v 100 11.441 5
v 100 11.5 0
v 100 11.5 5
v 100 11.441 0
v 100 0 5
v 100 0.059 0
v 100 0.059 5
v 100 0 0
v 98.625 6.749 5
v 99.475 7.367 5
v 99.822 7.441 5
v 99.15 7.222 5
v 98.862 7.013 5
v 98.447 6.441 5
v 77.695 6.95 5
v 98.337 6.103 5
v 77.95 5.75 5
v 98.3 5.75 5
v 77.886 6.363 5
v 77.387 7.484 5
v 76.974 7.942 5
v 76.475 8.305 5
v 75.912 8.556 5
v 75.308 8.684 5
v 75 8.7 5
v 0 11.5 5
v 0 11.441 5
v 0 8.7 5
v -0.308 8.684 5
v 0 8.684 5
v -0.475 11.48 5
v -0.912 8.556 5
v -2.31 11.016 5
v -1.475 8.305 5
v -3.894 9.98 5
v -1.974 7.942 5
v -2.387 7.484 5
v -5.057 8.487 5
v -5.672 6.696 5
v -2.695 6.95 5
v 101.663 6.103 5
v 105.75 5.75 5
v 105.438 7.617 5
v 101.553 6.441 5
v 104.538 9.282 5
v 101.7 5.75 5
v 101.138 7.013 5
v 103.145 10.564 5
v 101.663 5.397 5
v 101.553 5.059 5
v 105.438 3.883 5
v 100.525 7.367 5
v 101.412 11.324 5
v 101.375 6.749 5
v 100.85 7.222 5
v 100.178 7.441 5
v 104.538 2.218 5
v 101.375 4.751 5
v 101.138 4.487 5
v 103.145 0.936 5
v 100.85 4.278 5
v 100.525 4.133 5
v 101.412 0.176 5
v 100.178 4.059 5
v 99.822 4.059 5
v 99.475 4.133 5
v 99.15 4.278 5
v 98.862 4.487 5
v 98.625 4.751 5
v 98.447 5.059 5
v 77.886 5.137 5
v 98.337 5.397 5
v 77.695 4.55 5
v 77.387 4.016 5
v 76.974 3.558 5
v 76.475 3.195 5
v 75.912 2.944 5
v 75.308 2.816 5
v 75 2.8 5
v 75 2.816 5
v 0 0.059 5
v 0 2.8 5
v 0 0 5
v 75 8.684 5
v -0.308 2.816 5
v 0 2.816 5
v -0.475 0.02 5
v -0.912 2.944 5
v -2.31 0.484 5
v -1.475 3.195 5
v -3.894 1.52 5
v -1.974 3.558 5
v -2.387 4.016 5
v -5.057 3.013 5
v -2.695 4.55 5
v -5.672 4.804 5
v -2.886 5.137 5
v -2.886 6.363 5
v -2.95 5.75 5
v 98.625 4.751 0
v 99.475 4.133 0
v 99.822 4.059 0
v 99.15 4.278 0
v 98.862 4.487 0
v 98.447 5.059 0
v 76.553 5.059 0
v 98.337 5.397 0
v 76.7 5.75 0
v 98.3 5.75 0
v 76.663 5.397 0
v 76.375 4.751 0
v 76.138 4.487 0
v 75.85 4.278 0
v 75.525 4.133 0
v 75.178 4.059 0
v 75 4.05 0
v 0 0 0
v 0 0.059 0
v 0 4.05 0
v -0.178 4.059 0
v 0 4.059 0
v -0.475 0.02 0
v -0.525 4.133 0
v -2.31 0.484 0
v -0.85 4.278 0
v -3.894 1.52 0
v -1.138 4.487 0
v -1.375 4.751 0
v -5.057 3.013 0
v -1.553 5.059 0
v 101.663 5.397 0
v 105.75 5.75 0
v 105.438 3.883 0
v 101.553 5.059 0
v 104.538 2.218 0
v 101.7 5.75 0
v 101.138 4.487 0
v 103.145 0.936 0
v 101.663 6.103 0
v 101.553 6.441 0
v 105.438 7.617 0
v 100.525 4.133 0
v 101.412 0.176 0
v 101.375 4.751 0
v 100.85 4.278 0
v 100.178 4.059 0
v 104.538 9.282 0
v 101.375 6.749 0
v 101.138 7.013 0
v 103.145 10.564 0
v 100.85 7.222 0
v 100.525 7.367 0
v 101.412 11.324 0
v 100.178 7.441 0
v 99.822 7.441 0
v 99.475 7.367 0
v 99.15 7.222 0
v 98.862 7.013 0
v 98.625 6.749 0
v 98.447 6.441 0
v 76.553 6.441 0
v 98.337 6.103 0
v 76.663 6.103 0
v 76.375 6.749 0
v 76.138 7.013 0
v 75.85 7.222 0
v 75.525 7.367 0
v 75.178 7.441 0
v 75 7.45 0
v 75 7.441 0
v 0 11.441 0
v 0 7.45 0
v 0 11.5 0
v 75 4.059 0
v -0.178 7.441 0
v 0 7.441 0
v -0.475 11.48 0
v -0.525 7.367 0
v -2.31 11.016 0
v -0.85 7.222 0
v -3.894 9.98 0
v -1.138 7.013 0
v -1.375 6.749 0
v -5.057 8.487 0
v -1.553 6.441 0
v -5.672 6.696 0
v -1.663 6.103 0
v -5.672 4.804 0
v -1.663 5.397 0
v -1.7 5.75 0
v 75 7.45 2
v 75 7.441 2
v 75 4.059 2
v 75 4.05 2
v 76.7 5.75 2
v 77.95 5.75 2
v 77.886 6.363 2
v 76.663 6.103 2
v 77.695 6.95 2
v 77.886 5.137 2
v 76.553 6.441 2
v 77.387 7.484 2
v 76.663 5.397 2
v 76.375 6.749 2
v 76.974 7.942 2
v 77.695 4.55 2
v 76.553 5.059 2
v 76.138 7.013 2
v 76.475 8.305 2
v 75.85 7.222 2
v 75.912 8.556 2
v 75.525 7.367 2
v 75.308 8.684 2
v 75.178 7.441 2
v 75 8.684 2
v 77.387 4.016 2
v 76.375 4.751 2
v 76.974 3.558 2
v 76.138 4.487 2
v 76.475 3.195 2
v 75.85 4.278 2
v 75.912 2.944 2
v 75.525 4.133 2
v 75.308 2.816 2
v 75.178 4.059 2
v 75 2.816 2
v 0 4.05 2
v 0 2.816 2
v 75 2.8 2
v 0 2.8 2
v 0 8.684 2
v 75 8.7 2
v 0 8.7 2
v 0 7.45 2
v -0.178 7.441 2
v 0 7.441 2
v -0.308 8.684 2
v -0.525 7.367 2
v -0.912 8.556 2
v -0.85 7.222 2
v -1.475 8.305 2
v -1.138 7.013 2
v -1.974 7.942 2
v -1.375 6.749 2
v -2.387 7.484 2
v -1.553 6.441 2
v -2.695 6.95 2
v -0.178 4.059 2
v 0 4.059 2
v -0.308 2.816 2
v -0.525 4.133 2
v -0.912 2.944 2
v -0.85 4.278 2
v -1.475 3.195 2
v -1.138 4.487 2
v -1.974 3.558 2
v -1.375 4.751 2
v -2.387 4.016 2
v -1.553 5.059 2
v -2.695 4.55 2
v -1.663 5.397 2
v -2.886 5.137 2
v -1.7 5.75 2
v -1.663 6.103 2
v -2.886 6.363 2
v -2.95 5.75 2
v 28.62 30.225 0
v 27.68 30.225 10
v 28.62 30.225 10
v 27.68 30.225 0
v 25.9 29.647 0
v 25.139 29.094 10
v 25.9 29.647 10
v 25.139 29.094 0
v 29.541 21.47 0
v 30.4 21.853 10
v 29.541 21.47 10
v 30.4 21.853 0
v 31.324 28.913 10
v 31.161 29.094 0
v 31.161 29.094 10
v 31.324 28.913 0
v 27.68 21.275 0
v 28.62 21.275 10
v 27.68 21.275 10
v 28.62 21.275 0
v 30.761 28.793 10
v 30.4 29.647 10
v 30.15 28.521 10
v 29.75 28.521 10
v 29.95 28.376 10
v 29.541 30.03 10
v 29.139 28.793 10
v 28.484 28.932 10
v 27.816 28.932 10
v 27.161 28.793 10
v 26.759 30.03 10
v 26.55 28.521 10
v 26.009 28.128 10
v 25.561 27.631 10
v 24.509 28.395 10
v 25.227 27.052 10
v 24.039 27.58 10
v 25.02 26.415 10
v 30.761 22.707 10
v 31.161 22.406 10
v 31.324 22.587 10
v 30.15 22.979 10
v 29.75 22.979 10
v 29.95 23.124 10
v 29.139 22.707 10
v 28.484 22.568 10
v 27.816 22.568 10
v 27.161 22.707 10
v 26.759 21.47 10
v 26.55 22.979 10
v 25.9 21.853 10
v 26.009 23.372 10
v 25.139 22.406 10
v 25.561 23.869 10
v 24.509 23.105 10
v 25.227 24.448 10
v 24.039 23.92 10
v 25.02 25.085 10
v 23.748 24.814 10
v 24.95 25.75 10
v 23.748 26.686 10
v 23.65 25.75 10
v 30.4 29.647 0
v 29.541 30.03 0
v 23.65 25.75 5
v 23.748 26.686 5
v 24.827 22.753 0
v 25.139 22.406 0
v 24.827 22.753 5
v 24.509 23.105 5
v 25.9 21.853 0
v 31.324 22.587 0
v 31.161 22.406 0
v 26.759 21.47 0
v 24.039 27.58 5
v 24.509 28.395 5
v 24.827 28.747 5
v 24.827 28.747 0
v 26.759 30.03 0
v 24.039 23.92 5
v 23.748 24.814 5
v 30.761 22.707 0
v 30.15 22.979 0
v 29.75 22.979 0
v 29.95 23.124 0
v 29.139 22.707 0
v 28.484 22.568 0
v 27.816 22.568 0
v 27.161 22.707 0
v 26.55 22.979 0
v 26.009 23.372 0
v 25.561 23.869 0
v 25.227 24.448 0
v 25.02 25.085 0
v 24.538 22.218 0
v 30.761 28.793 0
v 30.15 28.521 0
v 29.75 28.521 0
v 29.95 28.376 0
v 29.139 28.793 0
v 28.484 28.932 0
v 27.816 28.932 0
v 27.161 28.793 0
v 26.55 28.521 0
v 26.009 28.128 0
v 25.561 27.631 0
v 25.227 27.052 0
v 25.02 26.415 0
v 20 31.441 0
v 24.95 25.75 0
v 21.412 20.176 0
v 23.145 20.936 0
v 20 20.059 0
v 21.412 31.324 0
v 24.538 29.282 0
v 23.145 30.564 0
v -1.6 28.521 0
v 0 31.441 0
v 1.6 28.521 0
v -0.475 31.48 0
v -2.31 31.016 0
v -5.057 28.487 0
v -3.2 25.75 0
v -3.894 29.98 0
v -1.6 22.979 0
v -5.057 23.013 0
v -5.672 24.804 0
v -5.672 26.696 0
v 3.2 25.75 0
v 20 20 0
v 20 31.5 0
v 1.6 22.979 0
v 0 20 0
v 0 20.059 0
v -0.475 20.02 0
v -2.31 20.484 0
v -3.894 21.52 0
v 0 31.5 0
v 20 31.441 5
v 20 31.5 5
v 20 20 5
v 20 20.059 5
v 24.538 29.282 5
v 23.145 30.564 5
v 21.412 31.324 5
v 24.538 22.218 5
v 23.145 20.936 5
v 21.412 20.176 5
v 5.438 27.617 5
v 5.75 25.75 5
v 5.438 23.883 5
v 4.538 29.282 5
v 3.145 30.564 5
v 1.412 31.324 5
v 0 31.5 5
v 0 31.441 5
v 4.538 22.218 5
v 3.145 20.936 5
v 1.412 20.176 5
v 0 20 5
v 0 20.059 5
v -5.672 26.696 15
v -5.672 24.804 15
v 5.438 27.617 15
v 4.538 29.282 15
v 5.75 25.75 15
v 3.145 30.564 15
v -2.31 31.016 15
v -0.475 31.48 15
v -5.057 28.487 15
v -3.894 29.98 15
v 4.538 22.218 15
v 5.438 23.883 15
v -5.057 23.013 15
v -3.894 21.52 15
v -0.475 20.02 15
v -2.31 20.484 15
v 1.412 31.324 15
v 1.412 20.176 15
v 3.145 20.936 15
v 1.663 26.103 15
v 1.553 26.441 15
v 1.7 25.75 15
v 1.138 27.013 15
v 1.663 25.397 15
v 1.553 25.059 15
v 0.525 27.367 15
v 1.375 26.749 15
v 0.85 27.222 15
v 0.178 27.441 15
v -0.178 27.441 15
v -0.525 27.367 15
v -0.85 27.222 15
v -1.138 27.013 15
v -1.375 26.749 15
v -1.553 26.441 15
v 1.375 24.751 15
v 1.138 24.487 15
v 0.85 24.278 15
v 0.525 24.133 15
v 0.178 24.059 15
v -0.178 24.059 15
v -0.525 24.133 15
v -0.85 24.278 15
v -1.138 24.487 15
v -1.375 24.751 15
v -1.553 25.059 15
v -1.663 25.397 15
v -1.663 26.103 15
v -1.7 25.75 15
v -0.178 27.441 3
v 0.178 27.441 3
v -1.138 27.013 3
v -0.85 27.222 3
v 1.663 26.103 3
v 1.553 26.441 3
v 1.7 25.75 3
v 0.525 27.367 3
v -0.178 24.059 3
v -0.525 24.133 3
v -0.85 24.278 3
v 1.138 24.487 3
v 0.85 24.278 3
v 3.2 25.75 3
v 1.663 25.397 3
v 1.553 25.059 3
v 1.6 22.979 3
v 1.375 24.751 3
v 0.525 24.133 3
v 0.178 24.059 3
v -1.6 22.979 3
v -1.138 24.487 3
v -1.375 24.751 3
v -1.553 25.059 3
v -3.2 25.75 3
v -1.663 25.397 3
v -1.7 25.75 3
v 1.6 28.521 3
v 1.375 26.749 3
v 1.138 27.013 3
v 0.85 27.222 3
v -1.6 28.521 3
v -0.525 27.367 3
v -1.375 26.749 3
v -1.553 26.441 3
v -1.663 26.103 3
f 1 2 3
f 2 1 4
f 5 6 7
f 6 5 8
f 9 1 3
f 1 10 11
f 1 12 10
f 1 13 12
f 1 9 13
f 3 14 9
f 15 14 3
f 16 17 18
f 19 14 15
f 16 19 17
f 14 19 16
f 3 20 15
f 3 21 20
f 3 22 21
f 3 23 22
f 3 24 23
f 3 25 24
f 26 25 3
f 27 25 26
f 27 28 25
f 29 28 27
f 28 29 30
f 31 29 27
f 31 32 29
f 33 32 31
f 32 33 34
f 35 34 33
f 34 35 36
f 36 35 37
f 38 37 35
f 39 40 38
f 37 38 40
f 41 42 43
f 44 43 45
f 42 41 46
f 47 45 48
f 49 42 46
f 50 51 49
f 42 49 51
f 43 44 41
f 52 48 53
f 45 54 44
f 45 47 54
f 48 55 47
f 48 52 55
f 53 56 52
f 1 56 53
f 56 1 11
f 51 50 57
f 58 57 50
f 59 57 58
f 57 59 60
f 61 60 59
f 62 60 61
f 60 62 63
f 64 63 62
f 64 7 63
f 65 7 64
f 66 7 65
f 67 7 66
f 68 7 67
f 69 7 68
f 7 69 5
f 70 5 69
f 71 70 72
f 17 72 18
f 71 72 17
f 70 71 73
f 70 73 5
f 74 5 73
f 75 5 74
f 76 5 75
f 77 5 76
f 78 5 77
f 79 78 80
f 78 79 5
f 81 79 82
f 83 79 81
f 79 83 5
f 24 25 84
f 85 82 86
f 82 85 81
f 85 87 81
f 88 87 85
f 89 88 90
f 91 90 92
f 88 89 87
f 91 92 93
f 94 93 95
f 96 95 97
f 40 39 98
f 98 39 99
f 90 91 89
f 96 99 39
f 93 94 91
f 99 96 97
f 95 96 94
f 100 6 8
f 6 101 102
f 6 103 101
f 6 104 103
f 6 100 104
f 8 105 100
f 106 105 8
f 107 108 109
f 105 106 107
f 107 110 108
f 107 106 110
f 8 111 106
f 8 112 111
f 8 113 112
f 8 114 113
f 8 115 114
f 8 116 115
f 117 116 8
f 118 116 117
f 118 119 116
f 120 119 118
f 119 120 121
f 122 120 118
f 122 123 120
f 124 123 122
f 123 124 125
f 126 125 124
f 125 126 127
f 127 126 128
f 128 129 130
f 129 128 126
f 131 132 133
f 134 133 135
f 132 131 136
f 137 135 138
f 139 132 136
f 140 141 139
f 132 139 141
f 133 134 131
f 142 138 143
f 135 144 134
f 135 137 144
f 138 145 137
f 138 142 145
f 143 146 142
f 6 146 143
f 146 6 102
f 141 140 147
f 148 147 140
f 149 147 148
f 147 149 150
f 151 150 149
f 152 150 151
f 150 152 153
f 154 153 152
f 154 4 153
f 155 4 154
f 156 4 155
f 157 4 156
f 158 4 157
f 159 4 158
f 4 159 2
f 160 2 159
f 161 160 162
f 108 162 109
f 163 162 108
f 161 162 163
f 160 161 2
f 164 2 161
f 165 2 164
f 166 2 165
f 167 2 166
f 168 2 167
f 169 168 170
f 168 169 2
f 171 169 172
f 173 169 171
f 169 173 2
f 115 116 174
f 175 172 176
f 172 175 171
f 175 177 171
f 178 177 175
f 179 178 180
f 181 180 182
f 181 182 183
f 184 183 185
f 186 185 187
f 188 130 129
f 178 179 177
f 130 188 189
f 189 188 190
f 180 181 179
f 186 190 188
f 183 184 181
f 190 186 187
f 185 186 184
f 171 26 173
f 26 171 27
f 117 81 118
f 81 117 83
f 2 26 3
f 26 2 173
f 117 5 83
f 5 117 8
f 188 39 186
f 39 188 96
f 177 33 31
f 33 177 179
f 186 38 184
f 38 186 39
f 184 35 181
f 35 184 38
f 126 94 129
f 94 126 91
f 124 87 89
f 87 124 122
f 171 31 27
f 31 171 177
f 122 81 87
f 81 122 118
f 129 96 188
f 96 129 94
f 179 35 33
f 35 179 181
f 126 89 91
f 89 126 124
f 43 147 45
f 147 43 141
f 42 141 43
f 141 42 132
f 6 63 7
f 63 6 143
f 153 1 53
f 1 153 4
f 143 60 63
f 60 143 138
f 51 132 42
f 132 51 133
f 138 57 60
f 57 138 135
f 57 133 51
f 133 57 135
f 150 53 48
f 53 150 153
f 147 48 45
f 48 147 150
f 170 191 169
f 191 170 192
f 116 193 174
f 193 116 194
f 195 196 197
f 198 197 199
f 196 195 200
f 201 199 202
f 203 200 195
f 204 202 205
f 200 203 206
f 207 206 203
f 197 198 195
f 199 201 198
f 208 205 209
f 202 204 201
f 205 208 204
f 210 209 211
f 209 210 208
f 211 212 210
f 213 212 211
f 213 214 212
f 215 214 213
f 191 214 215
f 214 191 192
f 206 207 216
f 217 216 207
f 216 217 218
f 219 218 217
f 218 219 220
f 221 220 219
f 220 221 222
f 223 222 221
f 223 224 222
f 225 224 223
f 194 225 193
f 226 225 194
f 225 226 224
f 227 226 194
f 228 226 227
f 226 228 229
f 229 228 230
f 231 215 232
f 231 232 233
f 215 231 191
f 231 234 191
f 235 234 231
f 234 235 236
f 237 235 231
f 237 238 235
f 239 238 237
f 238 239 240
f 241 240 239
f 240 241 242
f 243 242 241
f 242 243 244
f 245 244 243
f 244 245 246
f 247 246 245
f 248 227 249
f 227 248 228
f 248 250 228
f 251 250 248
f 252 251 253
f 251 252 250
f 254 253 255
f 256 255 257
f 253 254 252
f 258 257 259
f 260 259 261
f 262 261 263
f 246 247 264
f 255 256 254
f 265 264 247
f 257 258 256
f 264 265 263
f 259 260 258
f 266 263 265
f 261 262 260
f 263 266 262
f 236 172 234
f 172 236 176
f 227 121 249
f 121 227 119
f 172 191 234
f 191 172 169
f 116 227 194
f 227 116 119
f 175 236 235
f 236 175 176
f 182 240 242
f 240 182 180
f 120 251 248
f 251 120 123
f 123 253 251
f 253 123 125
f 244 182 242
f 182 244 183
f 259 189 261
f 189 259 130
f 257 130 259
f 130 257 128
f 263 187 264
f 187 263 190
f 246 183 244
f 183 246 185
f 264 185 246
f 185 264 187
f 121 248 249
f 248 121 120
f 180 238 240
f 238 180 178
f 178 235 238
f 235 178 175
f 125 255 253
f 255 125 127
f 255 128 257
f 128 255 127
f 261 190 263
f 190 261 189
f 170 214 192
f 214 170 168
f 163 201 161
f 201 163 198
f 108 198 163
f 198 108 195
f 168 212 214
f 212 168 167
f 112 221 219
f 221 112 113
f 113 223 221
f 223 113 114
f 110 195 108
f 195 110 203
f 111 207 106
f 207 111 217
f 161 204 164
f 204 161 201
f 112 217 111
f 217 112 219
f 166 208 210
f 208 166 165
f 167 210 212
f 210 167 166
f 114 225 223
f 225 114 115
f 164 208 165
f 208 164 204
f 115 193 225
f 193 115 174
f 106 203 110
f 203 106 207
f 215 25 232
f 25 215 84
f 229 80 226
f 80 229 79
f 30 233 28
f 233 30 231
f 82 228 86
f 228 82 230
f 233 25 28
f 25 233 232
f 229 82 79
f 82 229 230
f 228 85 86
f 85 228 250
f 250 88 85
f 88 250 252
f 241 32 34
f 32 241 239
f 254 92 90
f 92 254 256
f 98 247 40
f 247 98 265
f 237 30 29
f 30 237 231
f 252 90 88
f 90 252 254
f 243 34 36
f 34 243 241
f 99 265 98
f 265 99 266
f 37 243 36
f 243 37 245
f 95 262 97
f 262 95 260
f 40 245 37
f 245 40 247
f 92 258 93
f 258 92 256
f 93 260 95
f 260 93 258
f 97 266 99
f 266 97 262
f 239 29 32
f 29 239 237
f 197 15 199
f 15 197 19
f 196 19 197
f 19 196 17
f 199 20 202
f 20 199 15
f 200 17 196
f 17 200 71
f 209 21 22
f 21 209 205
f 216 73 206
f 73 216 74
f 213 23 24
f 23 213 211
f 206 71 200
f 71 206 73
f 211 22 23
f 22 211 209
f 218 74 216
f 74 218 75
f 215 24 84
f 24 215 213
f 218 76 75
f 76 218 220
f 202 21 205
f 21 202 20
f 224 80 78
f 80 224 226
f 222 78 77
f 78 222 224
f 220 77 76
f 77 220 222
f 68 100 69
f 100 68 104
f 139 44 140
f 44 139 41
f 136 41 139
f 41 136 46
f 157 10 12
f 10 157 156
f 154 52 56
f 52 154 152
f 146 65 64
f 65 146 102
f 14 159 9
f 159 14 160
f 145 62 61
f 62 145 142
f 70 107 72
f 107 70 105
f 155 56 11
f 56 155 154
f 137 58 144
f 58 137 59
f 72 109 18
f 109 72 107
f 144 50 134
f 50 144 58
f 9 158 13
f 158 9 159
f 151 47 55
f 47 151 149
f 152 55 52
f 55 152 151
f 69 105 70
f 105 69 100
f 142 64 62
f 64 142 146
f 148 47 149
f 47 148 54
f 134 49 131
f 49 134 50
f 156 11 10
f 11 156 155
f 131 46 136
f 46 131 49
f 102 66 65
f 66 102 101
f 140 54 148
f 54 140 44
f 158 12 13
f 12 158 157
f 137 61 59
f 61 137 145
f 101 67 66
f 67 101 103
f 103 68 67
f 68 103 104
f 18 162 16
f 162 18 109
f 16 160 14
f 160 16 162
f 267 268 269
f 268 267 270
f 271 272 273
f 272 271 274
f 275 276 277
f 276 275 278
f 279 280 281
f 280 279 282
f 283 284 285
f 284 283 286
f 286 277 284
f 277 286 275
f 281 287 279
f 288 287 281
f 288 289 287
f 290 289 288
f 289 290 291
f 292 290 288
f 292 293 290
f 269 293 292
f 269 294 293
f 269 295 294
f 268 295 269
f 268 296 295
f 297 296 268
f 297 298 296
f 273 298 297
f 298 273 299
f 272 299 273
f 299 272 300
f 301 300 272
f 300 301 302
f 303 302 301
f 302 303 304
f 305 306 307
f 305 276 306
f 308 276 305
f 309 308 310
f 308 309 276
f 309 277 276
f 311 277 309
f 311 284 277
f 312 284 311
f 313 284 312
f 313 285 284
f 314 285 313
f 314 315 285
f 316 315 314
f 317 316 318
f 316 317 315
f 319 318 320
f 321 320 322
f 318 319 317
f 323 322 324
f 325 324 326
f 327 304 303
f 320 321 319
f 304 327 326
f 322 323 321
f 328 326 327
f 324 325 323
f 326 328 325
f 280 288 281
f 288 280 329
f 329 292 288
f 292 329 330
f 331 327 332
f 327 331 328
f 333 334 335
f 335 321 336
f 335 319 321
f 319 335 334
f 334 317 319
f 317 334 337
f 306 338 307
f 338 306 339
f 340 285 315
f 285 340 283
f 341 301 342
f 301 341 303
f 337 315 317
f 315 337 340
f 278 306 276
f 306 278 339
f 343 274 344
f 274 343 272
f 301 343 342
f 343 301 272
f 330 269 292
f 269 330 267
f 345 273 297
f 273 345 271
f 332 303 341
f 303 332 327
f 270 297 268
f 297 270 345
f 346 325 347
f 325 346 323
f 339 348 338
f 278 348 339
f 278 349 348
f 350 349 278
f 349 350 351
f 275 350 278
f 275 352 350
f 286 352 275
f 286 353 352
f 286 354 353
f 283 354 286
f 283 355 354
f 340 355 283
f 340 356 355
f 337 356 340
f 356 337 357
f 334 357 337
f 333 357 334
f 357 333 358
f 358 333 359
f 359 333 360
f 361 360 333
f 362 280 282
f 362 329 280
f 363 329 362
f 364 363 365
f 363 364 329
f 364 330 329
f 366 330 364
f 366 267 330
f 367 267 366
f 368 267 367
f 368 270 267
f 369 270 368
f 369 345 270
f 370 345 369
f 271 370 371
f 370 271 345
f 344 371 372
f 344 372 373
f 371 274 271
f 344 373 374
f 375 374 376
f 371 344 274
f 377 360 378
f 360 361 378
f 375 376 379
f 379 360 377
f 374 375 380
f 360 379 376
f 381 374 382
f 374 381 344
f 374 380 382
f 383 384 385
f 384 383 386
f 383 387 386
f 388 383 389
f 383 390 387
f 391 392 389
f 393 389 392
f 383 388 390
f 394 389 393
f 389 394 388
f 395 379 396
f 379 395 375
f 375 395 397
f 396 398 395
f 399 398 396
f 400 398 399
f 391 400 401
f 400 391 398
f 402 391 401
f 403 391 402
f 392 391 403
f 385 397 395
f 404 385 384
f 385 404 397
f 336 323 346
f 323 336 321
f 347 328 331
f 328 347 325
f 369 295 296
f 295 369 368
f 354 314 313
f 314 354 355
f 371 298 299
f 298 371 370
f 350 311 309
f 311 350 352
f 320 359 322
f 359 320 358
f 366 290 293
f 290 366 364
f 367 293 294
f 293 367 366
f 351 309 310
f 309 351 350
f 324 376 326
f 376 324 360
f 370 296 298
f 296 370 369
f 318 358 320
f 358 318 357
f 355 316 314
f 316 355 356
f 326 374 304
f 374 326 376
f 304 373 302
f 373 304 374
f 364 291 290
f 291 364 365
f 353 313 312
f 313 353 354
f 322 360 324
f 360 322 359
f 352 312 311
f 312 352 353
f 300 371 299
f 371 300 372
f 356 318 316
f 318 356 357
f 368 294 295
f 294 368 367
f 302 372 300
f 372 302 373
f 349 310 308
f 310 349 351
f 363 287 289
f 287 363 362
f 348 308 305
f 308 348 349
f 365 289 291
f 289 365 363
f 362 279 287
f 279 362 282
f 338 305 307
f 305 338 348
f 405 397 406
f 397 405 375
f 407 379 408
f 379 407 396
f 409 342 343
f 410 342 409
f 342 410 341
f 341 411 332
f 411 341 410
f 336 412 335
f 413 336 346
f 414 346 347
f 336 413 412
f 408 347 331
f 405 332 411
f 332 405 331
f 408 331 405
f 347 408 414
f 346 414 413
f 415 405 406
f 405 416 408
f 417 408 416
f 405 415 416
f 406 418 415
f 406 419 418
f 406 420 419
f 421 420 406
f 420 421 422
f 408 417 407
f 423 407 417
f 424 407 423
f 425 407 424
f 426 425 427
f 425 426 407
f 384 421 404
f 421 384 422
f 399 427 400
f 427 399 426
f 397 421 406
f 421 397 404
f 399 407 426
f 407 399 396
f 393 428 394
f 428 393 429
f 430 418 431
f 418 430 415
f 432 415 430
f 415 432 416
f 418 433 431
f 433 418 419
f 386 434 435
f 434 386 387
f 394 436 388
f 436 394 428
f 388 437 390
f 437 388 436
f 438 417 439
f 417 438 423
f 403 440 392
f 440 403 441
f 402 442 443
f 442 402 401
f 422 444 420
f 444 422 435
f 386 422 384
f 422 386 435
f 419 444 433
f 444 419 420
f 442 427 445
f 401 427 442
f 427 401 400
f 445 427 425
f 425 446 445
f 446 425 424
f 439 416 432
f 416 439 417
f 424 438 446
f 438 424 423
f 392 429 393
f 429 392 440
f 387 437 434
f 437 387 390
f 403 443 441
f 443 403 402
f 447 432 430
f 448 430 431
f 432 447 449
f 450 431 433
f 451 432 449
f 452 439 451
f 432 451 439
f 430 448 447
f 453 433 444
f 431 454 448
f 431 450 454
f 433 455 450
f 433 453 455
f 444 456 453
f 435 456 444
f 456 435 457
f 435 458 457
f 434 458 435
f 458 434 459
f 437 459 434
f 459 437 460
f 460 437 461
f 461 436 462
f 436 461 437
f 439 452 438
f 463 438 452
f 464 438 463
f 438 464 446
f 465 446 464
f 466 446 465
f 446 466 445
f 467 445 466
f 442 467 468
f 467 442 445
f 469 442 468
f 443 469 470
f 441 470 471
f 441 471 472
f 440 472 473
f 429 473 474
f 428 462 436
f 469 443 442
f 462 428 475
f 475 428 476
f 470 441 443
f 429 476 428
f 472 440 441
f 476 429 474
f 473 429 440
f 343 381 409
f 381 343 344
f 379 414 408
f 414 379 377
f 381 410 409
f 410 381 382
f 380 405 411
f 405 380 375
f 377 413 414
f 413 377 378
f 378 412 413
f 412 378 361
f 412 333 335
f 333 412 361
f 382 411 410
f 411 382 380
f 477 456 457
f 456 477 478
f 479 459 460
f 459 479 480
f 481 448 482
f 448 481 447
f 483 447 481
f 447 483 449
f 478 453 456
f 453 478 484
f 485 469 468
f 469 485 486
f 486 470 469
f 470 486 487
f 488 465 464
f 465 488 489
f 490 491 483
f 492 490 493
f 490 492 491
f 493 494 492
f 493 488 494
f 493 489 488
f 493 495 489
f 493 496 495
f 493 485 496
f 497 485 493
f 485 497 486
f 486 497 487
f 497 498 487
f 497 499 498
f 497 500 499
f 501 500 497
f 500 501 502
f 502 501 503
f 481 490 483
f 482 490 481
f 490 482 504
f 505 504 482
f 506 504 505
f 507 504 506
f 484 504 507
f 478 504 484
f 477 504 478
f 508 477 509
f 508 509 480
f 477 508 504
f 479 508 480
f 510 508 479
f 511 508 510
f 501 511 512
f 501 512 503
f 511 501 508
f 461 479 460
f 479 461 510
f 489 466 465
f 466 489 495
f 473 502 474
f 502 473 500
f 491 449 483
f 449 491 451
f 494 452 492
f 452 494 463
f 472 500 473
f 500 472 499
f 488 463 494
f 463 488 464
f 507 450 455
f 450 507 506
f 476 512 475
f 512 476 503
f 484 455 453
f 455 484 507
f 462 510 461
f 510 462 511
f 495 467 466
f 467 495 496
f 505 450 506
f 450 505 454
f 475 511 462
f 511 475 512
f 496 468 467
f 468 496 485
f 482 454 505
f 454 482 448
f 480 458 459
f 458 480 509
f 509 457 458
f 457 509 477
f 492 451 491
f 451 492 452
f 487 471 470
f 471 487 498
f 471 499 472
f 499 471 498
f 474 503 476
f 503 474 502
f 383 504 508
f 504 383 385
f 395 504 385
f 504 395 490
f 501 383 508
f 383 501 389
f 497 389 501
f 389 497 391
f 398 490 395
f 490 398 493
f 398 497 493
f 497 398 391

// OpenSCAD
// Sample holder for OpenFlexure Block Stage. DoMB SPIM
// Borys Olifirov 2024

FDM_offset = 0.2;

holder_screw_d = 3;
holder_screw_hd = 5.5;
holder_nut_size = 6;

holder_base_l = 25;
holder_base_screw_l = 75;
holder_base_w = holder_screw_hd+3*2;

holder_arm_l = 20;
holder_arm_w = holder_screw_hd + 3*2;

syringe_d = 6;
clip_wall = 1.5;


module HolderBase() {
    difference() {
        // main_body
        union() {
            cube([holder_base_l+holder_base_screw_l,holder_base_w,5]);
            translate([0,holder_base_w/2,0])
                cylinder(d = holder_base_w, h = 5);
            translate([holder_base_l+holder_base_screw_l,holder_base_w/2,0])
                cylinder(d = holder_base_w, h = 5);
        }
        
        // bottom hole
        union() {
            translate([0,holder_base_w/2-(3+2*FDM_offset)/2,0])
                cube([holder_base_screw_l,3+2*FDM_offset,2]);
            translate([0,holder_base_w/2,0])
                cylinder(d = 3+2*FDM_offset, h = 2, $fn = 30);
            translate([holder_base_screw_l,holder_base_w/2,0])
                cylinder(d = 3+2*FDM_offset, h = 2, $fn = 30);
        }
        
        // up hole
        union() {
            translate([0,holder_base_w/2-(5.5+2*FDM_offset)/2,2])
                cube([holder_base_screw_l,holder_screw_hd+2*FDM_offset,3]);
            translate([0,holder_base_w/2,2])
                cylinder(d = holder_screw_hd+2*FDM_offset, h = 3, $fn = 30);
            translate([holder_base_screw_l,holder_base_w/2,2])
                cylinder(d = holder_screw_hd+2*FDM_offset, h = 3, $fn = 30);
        }
        
        // screw hole
        translate([holder_base_l+holder_base_screw_l,holder_base_w/2,0])
            cylinder(d = holder_screw_d+2*FDM_offset, h = 15, $fn = 30);
        
    }
}


module HolderClipArm() {
    clip_offset = 0.4;
    union() {
        // main body
        difference() {
            union() {
                cube([holder_arm_l,holder_base_w,5]);
                translate([0,holder_arm_w/2,0])
                    cylinder(d = holder_base_w, h = 15);
                translate([holder_arm_l,holder_arm_w/2,0])
                    cylinder(d = holder_base_w, h = 5);
            }
            translate([0,holder_arm_w/2,3])
                cylinder(d = holder_screw_d+2*FDM_offset, h = 15, $fn = 30);
            translate([0,holder_arm_w/2,0])
                cylinder(d = holder_nut_size+2*FDM_offset, h = 3, $fn = 6);
            
            translate([holder_arm_l+holder_base_w/2+syringe_d*clip_offset,
                       holder_arm_w/2,
                       0])  // clip contact surface
                cylinder(d = syringe_d+2*clip_wall, h = 10, $fn=30);
        }
    
        // syringe clip
        difference() {
            translate([holder_arm_l+holder_base_w/2+syringe_d*clip_offset,
                       holder_arm_w/2,
                       0])
                cylinder(d = syringe_d+2*clip_wall, h = 10, $fn=30);
            translate([holder_arm_l+holder_base_w/2+syringe_d*clip_offset,
                       holder_arm_w/2,
                       0])
                cylinder(d = syringe_d+2*FDM_offset, h = 10, $fn=30);
            translate([holder_arm_l+holder_base_w/2+syringe_d,
                       holder_arm_w/2,
                       0])
                cylinder(d = syringe_d+2*FDM_offset, h = 10, $fn=30);
        }
    }
}


HolderBase();

translate([0,20,0])
HolderClipArm();
